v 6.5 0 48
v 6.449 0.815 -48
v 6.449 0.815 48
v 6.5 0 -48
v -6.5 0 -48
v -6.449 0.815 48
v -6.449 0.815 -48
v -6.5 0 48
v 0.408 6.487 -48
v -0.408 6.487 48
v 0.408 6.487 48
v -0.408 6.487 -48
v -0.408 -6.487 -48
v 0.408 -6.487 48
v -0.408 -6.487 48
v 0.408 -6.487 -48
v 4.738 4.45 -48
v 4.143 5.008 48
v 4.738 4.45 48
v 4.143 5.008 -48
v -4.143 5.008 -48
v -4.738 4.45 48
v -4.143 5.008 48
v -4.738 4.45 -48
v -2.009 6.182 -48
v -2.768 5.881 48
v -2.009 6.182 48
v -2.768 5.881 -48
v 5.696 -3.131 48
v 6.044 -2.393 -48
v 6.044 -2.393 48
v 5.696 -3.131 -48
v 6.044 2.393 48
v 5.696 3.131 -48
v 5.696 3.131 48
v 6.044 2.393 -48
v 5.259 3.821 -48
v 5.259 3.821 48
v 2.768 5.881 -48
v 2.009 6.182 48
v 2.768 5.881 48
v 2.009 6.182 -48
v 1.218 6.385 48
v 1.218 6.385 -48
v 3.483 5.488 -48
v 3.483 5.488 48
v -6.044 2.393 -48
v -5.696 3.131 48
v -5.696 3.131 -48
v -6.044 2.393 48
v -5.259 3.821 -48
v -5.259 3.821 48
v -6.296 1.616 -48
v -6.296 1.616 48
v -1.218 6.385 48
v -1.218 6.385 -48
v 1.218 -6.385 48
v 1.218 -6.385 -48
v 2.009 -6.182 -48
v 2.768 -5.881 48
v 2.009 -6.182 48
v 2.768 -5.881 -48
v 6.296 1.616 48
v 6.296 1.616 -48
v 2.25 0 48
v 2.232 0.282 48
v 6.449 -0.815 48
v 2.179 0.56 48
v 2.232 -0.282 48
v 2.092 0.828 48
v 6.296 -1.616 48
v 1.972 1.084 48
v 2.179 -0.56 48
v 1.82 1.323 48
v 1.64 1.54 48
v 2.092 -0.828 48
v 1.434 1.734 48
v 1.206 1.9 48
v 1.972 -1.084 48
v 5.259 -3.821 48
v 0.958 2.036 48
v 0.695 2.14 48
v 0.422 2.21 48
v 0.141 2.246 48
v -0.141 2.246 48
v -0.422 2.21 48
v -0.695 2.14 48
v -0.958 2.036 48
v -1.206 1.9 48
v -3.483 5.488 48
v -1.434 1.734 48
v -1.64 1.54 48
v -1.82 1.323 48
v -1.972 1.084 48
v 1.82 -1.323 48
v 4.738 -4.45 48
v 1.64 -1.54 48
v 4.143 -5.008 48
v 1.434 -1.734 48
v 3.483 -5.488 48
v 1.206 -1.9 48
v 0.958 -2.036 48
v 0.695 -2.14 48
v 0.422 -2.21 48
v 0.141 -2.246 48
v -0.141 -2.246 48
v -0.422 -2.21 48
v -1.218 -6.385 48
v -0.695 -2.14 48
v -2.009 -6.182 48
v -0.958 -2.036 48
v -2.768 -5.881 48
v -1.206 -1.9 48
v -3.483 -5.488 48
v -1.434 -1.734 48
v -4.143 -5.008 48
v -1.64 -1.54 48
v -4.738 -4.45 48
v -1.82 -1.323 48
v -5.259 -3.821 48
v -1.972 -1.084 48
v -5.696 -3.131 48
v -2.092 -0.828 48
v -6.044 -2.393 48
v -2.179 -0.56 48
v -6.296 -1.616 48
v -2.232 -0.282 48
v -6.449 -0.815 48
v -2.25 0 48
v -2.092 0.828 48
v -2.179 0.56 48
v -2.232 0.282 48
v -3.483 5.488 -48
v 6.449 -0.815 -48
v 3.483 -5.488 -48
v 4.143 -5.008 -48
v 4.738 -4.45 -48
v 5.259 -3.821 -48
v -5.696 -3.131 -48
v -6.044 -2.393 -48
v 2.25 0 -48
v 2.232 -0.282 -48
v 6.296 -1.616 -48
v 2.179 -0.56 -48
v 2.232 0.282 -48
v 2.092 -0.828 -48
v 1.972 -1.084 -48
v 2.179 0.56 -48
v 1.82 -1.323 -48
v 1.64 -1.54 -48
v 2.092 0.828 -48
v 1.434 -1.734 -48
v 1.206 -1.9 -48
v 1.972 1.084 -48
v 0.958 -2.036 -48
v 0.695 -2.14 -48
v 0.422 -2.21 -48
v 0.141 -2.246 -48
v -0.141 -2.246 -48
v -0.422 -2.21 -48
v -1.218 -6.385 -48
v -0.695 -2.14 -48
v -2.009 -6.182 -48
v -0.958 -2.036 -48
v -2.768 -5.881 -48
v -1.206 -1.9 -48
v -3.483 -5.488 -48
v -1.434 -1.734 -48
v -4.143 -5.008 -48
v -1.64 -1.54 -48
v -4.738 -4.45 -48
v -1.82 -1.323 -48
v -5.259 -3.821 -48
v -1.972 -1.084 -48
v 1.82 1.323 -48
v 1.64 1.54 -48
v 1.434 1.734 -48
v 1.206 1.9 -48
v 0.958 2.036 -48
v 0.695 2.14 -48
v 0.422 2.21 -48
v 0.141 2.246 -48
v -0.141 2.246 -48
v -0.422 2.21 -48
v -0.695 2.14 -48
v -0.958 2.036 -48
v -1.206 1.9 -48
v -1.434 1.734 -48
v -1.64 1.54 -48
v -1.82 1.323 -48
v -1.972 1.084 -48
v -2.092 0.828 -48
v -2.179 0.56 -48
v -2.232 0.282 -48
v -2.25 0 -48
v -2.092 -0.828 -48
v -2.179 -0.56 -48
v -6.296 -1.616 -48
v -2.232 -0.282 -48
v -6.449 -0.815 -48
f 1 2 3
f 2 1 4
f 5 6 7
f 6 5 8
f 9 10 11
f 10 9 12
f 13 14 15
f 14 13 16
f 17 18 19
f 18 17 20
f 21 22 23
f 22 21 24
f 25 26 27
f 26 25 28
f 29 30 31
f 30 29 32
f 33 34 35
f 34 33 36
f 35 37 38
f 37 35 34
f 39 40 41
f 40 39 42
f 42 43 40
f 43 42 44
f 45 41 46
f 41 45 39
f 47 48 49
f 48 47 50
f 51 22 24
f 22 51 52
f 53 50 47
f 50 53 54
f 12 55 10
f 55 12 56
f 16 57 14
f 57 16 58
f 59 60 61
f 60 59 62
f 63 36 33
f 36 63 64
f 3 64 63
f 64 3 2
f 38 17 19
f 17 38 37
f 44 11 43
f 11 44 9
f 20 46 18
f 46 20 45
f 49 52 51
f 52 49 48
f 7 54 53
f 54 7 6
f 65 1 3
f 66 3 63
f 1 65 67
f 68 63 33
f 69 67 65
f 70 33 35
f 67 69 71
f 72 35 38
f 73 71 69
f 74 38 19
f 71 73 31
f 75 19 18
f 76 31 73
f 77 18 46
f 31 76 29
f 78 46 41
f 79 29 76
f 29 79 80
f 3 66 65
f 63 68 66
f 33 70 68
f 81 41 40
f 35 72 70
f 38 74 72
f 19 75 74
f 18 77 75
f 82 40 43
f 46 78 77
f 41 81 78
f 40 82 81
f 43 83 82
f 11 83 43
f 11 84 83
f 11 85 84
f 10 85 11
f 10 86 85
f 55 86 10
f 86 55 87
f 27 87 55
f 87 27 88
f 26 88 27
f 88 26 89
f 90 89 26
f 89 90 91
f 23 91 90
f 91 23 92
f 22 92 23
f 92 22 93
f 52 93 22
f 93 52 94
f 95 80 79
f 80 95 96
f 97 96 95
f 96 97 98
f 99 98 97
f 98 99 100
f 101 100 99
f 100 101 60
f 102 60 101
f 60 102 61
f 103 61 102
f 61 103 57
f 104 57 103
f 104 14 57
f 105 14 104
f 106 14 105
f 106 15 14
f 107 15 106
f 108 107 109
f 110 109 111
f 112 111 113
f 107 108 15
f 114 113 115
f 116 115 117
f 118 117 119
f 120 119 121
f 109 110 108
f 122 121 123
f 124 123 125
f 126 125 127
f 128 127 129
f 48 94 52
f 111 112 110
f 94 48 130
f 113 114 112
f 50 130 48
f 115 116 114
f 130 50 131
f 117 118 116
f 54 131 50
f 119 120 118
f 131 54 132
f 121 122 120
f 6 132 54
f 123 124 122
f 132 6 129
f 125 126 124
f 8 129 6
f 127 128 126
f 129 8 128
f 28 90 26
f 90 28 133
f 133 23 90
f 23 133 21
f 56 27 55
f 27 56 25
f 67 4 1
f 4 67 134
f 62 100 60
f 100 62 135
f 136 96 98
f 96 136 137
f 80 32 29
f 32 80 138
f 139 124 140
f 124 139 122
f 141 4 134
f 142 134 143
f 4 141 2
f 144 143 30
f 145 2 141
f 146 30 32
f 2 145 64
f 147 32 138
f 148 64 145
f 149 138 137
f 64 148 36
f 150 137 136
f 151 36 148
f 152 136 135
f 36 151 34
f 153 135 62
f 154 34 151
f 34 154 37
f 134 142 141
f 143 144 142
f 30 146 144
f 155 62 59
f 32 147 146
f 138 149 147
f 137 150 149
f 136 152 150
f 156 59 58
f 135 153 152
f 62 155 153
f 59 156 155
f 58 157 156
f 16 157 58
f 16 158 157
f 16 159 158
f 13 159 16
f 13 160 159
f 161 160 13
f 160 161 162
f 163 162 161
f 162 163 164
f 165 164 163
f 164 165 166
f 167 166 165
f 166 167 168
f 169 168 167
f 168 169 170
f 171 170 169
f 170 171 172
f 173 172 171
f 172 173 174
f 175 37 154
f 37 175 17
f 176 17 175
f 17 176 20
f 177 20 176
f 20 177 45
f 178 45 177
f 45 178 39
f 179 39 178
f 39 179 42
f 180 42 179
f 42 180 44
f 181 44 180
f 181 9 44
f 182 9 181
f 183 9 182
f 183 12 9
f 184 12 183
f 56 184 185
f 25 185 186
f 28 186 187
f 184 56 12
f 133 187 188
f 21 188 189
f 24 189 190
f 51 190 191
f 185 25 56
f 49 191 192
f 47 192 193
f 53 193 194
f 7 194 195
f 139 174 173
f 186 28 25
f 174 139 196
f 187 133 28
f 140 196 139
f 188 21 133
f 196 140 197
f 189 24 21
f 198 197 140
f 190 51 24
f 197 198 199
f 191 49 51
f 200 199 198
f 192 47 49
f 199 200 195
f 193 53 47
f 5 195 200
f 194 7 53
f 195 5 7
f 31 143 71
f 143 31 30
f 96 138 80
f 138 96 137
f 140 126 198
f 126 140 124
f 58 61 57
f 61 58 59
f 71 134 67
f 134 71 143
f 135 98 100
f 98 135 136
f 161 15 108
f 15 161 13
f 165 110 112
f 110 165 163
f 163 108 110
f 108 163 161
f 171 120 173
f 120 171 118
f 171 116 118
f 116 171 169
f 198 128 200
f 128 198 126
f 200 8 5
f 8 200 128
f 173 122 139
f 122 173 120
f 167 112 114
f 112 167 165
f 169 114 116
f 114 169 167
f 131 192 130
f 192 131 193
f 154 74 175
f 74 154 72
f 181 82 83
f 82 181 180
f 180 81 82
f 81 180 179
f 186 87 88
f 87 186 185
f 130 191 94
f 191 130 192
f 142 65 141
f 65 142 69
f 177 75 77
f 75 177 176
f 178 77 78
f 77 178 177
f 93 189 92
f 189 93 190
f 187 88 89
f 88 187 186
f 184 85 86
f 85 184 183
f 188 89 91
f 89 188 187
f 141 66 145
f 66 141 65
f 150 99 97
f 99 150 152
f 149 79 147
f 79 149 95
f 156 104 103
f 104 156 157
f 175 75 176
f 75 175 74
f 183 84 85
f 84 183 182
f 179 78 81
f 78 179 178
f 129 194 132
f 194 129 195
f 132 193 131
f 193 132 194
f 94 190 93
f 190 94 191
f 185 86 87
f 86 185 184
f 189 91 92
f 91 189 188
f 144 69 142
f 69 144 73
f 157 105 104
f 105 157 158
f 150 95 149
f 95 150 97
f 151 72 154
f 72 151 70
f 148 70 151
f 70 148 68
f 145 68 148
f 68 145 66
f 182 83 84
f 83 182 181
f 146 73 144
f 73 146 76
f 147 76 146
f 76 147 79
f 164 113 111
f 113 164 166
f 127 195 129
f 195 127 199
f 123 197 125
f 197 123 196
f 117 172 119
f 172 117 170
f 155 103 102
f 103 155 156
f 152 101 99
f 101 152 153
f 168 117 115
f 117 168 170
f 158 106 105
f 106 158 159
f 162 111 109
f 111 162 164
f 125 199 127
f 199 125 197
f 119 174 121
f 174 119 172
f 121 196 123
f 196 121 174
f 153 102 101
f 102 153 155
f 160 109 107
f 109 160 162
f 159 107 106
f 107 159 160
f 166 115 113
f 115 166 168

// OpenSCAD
$fn = 50;


difference() {
	union() {
		translate(v = [0, 0, -48.0000000000]) {
			cylinder(h = 96, r = 6.5000000000);
		}
	}
	union() {
		translate(v = [0, 0, -100.0000000000]) {
			cylinder(h = 200, r = 2.2500000000);
		}
	}
}
